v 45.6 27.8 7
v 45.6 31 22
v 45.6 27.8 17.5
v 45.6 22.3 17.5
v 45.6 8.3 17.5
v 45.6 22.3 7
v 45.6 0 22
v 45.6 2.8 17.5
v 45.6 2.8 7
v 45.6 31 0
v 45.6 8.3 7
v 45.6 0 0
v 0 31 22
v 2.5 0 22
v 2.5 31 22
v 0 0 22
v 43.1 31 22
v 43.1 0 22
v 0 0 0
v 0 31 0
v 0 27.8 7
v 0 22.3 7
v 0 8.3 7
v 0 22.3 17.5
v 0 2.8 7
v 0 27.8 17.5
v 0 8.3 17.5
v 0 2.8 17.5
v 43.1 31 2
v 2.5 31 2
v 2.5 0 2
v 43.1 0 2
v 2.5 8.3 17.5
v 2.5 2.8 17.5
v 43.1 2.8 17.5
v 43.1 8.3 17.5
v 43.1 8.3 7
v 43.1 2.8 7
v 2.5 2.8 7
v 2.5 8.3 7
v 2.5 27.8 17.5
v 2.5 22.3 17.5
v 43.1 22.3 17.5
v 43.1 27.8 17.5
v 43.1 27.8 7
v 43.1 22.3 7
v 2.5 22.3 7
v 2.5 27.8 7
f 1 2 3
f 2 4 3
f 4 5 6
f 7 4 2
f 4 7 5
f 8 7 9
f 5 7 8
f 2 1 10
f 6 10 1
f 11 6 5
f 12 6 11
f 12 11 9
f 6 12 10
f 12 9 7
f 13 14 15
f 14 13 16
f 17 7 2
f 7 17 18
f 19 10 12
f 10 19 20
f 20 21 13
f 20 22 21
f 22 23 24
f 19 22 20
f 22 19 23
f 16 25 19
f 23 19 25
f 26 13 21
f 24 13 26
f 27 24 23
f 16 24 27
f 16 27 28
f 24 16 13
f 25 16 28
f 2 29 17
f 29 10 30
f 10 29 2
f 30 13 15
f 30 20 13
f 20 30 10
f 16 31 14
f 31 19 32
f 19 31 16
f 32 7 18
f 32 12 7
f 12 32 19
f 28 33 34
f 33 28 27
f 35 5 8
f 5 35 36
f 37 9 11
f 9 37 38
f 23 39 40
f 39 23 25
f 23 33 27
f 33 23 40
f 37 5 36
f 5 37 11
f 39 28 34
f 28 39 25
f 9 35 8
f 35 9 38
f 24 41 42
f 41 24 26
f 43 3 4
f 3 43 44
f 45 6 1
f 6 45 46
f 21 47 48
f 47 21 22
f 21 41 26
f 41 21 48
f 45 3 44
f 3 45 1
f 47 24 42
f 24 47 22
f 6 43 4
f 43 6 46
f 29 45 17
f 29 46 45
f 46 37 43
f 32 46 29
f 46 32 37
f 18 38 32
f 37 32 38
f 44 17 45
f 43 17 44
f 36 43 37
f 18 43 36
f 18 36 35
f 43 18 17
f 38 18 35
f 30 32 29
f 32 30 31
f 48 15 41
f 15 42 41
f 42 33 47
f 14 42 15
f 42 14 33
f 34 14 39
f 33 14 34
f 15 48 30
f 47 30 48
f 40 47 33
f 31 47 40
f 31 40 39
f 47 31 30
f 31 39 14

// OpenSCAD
// file: data-access.scad
// Norm Nuts and Bolts - a OpenSCAD library
// Copyright (C) 2012  Johannes Kneer

// This program is free software: you can redistribute it and/or modify
// it under the terms of the GNU General Public License as published by
// the Free Software Foundation, either version 3 of the License, or
// (at your option) any later version.

// This program is distributed in the hope that it will be useful,
// but WITHOUT ANY WARRANTY; without even the implied warranty of
// MERCHANTABILITY or FITNESS FOR A PARTICULAR PURPOSE.  See the
// GNU General Public License for more details.

// You should have received a copy of the GNU General Public License
// along with this program.  If not, see <http://www.gnu.org/licenses/>.


// DATABASE ACCESS FUNCTIONS AND CONSTANTS



// == CONSTANTS ==

// screw table access keys
_NB_S_DESC            = 0;
_NB_S_FAMKEY			    = 1;
_NB_S_LENGTH          = 2;
_NB_S_NOTHREAD_LENGTH = 3;

_NB_F_DESC			      = 0;
_NB_F_OUTER_DIA       = 1;
_NB_F_INNER_DIA       = 2;
_NB_F_LEAD            = 3;
_NB_F_KEY             = 4;
_NB_F_KEY_DEPTH       = 5;
_NB_F_HEAD_HEIGHT     = 6;
_NB_F_HEAD_DIA        = 7;
_NB_F_NUT_KEY         = 8;
_NB_F_NUT_HEIGHT      = 9;
_NB_F_PITCH_FINE      = 10;
_NB_F_PITCH_MEDIUM    = 11;
_NB_F_PITCH_COARSE    = 12;


// == FUNCTIONS ==

// _get_screw("descriptor")   with descriptor = M8x25
//   find the line for a general object in the data matrix

function _get_screw(n) = data_screw[search([n], data_screw)[0]];
function _get_screw_fam(n) = data_screw_fam[search([_get_screw(n)[_NB_S_FAMKEY]], data_screw_fam)[0]];

function _get_fam(n) = data_screw_fam[search([n], data_screw_fam)[0]];


// _get_XXXXX("descriptor") functions
// find a single property in the database

function _get_desc(n)        = _get_screw(n)[_NB_S_DESC];
function _get_famkey(n)         = _get_screw(n)[_NB_S_FAMKEY];
function _get_length(n)      = _get_screw(n)[_NB_S_LENGTH];
function _get_nt_length(n)   = _get_screw(n)[_NB_S_NOTHREAD_LENGTH];

function _get_outer_dia(n)   = _get_screw_fam(n)[_NB_F_OUTER_DIA];
function _get_inner_dia(n)   = _get_screw_fam(n)[_NB_F_INNER_DIA];
function _get_lead(n)        = _get_screw_fam(n)[_NB_F_LEAD];
function _get_head_height(n) = _get_screw_fam(n)[_NB_F_HEAD_HEIGHT];
function _get_head_dia(n)    = _get_screw_fam(n)[_NB_F_HEAD_DIA];
function _get_nut_key(n)     = _get_screw_fam(n)[_NB_F_NUT_KEY];
function _get_nut_height(n)  = _get_screw_fam(n)[_NB_F_NUT_HEIGHT];
function _get_fine_pitch(n)  = _get_screw_fam(n)[_NB_F_PITCH_FINE];
function _get_medium_pitch(n)  = _get_screw_fam(n)[_NB_F_PITCH_MEDIUM];
function _get_coarse_pitch(n)  = _get_screw_fam(n)[_NB_F_PITCH_COARSE];
// main file
//OSCRE FLIR camera clip v1.0
//1 October 2024 - Aaron Kennedy - aaron.kennedy@und.edu
include <cyl_head_bolt.scad>;
$fn = 200 *1; //Ensure 
 difference() {
        union() {
            //base
            color("green") cube([45.6,31,22]); //length, width, height           
            }
            color("pink") translate([0,2.8,7])cube([45.6,5.5,10.5]); //length, width, height
            color("pink") translate([0,22.3,7])cube([45.6,5.5,10.5]); //length, width, height
            color("white") translate([2.5,0,2])cube([40.6,31,20]); //length, width, height
             
 }
 
